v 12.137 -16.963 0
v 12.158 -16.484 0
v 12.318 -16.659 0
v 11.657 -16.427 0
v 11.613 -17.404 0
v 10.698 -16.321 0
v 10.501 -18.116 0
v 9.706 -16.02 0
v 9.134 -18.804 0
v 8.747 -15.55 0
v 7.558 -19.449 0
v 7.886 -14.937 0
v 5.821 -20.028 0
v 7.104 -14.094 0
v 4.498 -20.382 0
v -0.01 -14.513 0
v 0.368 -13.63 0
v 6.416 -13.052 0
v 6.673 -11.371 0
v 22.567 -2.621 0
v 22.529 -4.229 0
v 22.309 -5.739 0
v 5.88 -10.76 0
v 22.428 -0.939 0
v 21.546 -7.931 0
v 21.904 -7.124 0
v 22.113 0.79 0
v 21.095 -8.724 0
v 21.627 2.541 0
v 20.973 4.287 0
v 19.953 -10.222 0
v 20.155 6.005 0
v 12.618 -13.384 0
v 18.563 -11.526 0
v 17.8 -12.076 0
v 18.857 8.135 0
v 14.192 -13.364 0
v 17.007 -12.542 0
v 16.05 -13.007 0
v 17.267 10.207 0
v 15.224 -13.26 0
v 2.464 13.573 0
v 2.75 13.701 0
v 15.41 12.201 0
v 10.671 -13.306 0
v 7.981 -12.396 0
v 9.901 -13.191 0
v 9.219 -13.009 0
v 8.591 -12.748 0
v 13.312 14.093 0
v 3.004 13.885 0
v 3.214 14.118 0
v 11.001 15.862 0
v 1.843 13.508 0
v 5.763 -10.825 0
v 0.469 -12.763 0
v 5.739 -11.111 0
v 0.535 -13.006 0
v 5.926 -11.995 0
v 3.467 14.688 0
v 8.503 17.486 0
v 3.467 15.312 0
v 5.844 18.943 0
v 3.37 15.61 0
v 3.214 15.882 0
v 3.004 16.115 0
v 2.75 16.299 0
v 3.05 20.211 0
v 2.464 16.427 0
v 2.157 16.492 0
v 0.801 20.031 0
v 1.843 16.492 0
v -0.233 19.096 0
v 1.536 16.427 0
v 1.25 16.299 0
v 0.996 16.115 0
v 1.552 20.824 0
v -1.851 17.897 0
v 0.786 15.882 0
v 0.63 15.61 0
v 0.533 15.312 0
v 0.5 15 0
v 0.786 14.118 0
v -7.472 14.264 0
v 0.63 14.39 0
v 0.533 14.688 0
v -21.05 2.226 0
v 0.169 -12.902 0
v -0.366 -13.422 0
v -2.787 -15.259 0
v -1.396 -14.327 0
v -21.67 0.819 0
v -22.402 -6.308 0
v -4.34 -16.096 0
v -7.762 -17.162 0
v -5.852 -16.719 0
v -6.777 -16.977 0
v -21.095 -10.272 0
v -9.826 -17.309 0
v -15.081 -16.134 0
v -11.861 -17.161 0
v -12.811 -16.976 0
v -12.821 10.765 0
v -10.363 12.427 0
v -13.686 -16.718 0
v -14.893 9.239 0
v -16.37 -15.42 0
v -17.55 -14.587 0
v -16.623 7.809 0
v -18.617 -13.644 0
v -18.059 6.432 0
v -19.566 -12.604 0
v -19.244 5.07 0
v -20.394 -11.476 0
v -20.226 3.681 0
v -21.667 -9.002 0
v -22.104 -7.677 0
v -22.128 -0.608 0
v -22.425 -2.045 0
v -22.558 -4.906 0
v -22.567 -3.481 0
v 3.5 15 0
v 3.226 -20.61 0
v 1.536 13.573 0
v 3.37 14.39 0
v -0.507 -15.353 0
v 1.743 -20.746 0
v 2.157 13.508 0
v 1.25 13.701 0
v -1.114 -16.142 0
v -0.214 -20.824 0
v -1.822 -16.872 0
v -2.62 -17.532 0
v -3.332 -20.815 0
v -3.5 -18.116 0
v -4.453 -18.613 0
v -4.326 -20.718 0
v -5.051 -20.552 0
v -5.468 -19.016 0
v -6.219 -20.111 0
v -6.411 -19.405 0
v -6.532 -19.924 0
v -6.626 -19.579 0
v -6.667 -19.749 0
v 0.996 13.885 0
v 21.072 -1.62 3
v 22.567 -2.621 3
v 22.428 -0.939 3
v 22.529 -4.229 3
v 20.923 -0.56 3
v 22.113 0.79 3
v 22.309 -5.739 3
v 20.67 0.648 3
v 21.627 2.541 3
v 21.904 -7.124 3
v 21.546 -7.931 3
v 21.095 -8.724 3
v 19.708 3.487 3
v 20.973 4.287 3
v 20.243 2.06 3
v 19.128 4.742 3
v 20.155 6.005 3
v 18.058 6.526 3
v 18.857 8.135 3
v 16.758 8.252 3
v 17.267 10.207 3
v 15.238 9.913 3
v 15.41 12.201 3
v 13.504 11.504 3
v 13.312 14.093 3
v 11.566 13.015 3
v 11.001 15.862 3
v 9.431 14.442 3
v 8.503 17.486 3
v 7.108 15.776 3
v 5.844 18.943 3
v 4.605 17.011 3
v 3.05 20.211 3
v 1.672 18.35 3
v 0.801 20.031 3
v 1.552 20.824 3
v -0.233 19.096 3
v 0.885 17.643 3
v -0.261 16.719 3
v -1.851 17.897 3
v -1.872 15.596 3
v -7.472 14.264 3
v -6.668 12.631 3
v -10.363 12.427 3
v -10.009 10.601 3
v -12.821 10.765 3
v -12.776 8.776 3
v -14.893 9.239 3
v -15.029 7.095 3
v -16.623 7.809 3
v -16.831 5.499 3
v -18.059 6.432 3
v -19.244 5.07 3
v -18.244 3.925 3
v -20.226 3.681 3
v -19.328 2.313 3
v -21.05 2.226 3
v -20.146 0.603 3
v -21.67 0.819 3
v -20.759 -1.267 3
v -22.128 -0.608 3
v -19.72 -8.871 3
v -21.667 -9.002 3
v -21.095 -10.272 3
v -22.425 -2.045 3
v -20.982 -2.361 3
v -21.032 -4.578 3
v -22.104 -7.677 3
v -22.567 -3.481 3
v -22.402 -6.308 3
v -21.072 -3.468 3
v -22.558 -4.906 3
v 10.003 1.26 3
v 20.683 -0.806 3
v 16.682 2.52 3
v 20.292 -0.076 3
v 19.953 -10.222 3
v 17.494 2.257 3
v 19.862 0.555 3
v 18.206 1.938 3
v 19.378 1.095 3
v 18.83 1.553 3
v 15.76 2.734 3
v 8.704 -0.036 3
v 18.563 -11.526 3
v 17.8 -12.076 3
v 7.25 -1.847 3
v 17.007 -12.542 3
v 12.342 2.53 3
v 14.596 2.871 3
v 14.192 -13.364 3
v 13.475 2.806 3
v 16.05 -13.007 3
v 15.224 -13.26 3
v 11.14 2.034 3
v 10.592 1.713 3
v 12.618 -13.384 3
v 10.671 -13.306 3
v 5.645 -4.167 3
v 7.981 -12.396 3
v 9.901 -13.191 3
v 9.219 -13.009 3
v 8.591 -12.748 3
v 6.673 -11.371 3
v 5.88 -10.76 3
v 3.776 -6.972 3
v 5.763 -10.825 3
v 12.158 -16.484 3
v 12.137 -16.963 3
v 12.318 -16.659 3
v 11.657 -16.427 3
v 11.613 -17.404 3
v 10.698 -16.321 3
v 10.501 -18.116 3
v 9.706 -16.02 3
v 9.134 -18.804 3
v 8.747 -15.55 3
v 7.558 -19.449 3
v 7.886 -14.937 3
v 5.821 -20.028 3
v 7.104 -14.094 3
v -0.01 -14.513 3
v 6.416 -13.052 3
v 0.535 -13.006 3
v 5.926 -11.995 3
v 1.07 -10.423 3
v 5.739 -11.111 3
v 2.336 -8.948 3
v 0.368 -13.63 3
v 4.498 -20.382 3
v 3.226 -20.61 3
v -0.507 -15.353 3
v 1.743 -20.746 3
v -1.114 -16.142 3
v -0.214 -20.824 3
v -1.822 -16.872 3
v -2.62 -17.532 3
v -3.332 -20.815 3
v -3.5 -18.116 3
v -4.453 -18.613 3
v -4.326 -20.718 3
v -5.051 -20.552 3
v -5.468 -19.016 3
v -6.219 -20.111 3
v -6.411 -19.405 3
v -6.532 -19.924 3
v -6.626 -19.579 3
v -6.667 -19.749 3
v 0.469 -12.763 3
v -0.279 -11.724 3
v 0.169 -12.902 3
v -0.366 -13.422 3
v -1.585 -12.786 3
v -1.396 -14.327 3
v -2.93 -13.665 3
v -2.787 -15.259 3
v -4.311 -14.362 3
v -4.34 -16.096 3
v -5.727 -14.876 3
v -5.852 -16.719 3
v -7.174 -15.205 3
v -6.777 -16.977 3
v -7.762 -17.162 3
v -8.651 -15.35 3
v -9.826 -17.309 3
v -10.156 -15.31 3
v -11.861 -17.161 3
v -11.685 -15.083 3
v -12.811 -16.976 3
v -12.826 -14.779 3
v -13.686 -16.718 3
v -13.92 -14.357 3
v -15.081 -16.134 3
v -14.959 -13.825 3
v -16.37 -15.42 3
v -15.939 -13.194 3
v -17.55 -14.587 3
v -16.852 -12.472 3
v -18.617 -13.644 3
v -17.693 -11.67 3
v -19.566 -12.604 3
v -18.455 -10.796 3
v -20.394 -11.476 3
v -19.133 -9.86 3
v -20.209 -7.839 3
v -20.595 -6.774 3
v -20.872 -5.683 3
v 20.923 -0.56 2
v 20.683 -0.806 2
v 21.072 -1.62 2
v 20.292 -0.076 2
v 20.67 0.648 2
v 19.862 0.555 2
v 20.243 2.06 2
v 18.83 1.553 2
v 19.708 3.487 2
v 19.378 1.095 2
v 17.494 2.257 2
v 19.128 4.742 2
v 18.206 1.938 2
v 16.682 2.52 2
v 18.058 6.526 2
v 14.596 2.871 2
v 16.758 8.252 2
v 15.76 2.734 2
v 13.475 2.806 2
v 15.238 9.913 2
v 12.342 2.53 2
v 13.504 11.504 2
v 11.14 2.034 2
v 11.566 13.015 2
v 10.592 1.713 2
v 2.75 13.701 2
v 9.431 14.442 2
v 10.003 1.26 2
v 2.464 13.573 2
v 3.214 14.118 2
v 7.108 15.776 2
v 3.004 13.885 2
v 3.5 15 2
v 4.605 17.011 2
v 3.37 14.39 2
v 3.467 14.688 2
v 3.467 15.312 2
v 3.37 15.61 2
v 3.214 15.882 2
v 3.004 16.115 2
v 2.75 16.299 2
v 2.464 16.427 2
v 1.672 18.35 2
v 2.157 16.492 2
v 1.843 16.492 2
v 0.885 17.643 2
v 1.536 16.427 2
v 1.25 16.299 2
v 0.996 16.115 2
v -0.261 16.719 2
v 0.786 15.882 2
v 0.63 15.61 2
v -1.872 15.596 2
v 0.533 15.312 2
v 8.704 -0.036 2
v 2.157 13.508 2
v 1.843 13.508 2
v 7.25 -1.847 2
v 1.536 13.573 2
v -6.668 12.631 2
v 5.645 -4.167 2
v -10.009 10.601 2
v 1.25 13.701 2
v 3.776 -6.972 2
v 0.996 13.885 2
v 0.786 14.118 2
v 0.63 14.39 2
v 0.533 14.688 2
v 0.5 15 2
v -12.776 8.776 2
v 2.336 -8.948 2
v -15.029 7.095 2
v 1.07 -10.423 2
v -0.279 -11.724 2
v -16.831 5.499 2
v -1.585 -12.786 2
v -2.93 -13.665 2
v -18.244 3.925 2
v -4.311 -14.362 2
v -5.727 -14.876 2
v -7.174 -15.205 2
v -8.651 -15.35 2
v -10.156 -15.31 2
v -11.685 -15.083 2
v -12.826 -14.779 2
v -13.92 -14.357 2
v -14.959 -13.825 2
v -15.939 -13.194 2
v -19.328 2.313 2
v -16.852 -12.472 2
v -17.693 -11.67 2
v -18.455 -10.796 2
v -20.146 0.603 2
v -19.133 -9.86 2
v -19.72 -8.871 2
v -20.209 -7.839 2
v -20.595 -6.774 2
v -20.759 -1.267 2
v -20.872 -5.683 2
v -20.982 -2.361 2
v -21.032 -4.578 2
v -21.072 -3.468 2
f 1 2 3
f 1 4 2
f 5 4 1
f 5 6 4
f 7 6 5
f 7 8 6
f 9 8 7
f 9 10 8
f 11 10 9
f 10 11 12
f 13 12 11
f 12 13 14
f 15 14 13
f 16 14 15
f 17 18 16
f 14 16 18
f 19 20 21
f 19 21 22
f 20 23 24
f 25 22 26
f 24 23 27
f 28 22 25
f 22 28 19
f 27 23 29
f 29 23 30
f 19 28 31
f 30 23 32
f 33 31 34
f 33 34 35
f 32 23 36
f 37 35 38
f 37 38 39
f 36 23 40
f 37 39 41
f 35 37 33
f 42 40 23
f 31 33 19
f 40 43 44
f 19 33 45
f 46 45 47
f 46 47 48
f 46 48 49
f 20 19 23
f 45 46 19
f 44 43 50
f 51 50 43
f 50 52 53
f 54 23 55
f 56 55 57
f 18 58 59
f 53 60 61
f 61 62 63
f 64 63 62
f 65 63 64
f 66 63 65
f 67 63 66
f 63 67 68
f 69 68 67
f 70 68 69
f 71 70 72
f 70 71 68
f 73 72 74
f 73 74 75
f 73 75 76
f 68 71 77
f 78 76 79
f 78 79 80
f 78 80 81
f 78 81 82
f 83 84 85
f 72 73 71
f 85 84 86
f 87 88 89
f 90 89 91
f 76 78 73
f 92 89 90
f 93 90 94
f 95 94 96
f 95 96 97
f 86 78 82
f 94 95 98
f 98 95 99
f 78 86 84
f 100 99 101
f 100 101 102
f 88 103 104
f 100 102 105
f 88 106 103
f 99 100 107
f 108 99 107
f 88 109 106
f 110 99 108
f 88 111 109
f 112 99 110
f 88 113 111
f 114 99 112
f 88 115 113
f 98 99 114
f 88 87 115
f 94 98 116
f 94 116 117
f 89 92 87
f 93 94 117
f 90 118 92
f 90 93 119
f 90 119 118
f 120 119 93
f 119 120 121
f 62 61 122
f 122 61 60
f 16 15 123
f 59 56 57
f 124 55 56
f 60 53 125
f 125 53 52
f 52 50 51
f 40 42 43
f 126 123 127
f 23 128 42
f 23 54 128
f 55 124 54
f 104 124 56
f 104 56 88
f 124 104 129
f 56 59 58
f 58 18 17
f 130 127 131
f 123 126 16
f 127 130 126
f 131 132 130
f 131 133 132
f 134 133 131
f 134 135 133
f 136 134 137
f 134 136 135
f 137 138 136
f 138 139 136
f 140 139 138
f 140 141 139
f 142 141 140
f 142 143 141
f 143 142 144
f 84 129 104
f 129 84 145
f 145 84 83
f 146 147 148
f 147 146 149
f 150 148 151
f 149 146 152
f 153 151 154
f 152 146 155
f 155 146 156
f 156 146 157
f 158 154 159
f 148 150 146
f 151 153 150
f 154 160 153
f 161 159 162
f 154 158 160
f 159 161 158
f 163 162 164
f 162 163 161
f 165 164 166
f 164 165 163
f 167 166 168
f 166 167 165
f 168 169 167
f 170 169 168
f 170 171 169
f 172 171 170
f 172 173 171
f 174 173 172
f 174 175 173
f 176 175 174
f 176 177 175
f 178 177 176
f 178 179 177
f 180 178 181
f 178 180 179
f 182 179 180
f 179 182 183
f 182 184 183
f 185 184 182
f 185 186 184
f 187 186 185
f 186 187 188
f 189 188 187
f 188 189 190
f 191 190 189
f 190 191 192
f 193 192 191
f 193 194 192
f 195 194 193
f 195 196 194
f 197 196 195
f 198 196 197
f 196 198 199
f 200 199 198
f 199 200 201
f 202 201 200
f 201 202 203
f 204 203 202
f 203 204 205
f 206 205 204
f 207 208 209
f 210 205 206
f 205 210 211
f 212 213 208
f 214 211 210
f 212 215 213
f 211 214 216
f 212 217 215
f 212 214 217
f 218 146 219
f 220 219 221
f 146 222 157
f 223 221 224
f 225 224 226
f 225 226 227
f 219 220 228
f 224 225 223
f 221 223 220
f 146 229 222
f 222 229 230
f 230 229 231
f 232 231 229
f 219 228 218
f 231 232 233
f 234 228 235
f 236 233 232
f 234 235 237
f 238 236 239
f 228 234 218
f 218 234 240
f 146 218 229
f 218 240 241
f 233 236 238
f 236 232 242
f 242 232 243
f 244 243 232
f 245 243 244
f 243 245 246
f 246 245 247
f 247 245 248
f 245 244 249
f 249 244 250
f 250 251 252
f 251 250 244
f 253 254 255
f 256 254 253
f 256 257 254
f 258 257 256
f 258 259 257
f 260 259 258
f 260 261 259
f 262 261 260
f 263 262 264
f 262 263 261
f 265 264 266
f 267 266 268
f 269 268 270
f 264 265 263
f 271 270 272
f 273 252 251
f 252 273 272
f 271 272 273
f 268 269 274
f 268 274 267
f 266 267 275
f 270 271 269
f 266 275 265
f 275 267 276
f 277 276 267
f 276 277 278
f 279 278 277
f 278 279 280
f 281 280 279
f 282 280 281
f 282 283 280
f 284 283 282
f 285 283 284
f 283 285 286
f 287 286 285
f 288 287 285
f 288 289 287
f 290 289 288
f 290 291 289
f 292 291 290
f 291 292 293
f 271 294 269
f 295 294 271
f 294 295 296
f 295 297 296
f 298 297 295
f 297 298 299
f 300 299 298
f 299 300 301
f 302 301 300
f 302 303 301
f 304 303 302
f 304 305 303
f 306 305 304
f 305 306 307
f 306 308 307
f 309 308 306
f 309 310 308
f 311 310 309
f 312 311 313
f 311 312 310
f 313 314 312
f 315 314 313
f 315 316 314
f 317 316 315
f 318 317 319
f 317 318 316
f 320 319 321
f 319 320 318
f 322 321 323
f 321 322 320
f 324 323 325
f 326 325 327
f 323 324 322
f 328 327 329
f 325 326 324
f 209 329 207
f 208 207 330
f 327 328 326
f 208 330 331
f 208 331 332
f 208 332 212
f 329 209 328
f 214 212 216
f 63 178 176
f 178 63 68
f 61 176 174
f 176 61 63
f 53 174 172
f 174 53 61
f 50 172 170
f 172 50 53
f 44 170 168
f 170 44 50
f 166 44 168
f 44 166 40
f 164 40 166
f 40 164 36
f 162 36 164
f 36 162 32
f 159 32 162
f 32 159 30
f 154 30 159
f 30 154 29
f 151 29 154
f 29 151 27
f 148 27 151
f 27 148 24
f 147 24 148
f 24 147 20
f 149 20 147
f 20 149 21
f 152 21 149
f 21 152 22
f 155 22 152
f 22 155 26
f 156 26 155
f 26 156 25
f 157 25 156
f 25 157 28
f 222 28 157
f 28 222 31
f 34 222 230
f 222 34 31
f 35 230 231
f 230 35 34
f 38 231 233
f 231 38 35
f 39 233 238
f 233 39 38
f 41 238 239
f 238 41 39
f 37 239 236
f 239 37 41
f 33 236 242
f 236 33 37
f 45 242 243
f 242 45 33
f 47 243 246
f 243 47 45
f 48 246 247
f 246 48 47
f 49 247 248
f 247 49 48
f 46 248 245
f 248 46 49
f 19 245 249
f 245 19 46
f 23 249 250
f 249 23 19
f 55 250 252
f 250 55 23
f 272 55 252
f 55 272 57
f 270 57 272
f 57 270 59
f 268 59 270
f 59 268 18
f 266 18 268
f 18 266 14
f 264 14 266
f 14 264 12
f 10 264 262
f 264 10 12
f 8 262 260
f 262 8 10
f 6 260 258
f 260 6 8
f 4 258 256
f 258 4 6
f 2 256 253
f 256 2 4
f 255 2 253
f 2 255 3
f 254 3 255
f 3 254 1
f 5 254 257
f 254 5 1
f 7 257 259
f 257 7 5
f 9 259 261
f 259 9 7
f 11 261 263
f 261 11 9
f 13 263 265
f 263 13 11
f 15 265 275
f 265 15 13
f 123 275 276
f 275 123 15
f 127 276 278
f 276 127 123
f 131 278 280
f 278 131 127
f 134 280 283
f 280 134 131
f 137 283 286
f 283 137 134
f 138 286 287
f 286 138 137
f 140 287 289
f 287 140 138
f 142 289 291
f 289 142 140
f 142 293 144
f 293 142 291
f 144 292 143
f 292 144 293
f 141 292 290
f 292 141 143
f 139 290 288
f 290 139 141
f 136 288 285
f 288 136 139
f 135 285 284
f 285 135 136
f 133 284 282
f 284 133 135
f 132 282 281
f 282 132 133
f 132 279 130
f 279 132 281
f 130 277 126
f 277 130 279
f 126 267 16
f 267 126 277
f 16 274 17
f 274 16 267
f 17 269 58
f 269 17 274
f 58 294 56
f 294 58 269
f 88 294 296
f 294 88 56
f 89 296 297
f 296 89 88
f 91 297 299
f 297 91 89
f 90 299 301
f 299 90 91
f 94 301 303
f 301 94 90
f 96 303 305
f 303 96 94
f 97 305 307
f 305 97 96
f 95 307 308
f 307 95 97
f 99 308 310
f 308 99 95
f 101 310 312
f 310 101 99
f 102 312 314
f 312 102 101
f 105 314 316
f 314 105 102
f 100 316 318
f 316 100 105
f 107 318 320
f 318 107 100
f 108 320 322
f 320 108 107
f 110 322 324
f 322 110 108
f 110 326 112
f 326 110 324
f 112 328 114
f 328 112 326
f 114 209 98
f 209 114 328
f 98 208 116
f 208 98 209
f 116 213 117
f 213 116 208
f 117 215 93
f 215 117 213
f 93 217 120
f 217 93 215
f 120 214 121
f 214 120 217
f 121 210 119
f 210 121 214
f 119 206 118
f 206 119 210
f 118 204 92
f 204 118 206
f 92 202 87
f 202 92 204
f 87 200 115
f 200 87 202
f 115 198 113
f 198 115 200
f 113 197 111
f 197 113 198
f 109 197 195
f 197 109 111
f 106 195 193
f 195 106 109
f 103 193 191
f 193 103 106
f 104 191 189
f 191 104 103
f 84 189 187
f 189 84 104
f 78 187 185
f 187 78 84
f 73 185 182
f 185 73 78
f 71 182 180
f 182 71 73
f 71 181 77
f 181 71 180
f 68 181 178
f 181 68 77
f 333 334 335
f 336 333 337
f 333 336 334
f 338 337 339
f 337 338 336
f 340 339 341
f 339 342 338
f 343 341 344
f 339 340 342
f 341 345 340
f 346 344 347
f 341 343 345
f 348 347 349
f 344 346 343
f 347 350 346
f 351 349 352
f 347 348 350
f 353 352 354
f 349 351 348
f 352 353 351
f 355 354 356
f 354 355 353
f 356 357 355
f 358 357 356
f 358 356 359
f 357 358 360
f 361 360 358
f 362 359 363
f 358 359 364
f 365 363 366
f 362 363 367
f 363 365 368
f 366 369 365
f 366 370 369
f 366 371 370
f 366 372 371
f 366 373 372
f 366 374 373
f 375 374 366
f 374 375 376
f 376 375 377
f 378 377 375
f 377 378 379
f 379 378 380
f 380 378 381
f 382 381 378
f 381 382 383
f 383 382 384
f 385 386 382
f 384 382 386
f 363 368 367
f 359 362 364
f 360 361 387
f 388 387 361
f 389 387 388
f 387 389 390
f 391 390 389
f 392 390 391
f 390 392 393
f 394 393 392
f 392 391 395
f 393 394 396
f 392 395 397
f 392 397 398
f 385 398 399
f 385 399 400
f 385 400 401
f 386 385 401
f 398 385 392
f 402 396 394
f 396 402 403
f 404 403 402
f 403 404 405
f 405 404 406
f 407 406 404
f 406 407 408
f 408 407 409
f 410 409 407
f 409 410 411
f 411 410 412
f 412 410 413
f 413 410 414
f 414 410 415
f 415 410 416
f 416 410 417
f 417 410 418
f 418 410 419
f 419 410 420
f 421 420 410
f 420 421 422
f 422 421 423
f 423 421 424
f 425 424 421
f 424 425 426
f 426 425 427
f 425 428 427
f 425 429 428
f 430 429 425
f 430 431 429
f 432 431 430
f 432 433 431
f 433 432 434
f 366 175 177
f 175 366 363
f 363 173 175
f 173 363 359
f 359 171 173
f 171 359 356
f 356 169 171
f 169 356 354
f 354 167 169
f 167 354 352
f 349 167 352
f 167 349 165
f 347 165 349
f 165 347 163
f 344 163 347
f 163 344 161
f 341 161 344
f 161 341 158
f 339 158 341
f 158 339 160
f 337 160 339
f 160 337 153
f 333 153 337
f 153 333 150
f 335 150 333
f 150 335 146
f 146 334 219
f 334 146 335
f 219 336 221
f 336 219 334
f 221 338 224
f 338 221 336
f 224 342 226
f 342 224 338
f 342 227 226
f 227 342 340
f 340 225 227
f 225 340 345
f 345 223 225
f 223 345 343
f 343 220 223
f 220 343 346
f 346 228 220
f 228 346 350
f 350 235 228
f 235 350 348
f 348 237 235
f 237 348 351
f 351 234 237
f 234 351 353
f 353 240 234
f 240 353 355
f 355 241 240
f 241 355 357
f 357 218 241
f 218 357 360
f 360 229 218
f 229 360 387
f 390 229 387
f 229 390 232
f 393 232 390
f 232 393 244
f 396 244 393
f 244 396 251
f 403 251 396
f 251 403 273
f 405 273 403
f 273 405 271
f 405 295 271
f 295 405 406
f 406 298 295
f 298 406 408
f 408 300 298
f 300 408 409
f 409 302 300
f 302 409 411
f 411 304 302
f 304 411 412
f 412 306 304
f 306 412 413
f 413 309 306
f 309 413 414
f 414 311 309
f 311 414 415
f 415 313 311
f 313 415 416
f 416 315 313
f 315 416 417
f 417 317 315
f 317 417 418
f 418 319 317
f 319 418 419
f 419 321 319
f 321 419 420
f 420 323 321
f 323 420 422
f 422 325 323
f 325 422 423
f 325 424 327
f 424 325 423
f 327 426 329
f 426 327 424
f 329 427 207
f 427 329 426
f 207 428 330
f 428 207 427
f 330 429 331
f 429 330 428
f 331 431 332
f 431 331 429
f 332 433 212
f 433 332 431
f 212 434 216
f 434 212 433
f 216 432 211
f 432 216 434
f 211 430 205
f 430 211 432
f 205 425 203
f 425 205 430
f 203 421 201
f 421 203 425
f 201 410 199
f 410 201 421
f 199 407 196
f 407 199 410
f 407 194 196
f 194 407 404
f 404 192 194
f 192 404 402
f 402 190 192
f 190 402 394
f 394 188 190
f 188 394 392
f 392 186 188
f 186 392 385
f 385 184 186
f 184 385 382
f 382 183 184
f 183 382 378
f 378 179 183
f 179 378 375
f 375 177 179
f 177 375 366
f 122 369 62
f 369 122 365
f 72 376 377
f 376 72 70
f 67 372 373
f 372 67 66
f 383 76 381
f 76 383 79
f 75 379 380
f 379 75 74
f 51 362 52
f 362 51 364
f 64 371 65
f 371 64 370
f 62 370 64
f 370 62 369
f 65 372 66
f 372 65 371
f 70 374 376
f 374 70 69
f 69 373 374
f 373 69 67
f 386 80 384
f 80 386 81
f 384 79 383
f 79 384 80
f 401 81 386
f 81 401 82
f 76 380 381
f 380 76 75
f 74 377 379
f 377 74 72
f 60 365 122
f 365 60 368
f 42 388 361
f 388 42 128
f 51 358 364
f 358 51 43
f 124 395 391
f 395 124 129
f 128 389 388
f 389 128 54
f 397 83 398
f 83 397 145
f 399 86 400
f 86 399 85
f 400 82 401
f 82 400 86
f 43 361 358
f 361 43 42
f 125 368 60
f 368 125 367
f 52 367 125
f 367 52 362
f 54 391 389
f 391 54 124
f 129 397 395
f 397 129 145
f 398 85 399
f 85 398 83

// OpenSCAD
fudge = 0.1;
   
difference(){

forma2(3);

translate([0,1.5,2])
scale([1,.95,1])
forma1(2);

translate([2,15,0])cylinder(d=3,h=20,$fn=30,cneter=true);
}

module forma1(h)
{
  scale([25.4/96, -25.4/96, 1]) union()
  {
    linear_extrude(height=h)
      polygon([[-44.165123,65.974522],[-48.477815,64.765951],[-52.610347,63.085653],[-56.539347,60.971090],[-60.241442,58.459721],[-63.693259,55.589008],[-66.871425,52.396411],[-69.752567,48.919392],[-72.313313,45.195409],[-74.530289,41.261925],[-76.380123,37.156401],[-77.839441,32.916296],[-78.884871,28.579071],[-79.493040,24.182188],[-79.640574,19.763106],[-79.304102,15.359288],[-78.460250,11.008193],[-76.142231,3.568923],[-73.050565,-3.235665],[-68.952185,-9.647547],[-63.614024,-15.908699],[-56.803014,-22.261095],[-48.286090,-28.946711],[-37.830185,-36.207522],[-25.202230,-44.285503],[-7.074295,-56.080060],[-0.986564,-60.548520],[3.343678,-64.222735],[6.321261,-67.037750],[17.406178,-61.709077],[26.865738,-56.796468],[35.645279,-51.488673],[43.713577,-45.813461],[51.039408,-39.798600],[57.591546,-33.471859],[63.338768,-26.861006],[68.249848,-19.993810],[72.293563,-12.898039],[74.487252,-7.906271],[76.510262,-2.227162],[78.121502,3.389941],[79.079881,8.195693],[79.640574,12.414460],[78.170633,9.174708],[76.696154,6.270942],[75.066975,3.760868],[73.238852,1.610997],[71.167535,-0.212163],[68.808779,-1.742101],[66.118336,-3.012308],[63.051959,-4.056275],[59.565402,-4.907492],[55.166312,-5.454880],[50.930057,-5.196125],[46.645747,-4.097627],[42.102496,-2.125784],[40.031939,-0.847345],[37.805929,0.953411],[32.898393,6.108995],[27.401575,13.315210],[21.337158,22.546299],[14.269973,33.704971],[8.828040,41.568188],[4.042657,47.436568],[-1.054877,52.610727],[-5.991575,56.834795],[-11.074596,60.334583],[-16.295362,63.107431],[-21.645295,65.150681],[-27.115815,66.461674],[-32.698346,67.037750],[-38.384308,66.876253],[-44.165123,65.974522]]);
  }
}

module forma2(h)
{
  scale([25.4/90, -25.4/90, 1]) union()
  {
    linear_extrude(height=h)
      polygon([[-17.897156,72.821479],[-22.037196,71.259329],[-23.145849,70.597313],[-23.623534,69.978006],[-23.477709,69.373911],[-22.715833,68.757532],[-19.373758,67.377931],[-15.777226,65.951787],[-12.402936,64.189793],[-9.284344,62.122827],[-6.454905,59.781768],[-3.948074,57.197494],[-1.797306,54.400886],[-0.036057,51.422820],[1.302218,48.294176],[1.896717,46.082372],[1.662076,45.222421],[0.597504,45.714105],[-1.297790,47.557204],[-4.945618,50.764762],[-9.876814,54.066936],[-15.377992,57.034966],[-20.735770,59.240089],[-24.012221,60.155199],[-27.504716,60.808661],[-34.816287,61.330764],[-42.027379,60.806644],[-45.394275,60.152327],[-48.494887,59.236546],[-53.435306,57.169146],[-58.003827,54.639476],[-62.185578,51.685797],[-65.965688,48.346372],[-69.329283,44.659462],[-72.261492,40.663329],[-74.747443,36.396237],[-76.772262,31.896447],[-78.321078,27.202220],[-79.379018,22.351821],[-79.931211,17.383509],[-79.962783,12.335549],[-79.458863,7.246201],[-78.404579,2.153729],[-76.785057,-2.903607],[-74.585426,-7.887543],[-71.667653,-13.044560],[-68.188901,-17.964698],[-63.987407,-22.791383],[-58.901407,-27.668041],[-52.769139,-32.738099],[-45.428840,-38.144984],[-36.718747,-44.032120],[-26.477096,-50.542936],[-6.560292,-63.413312],[-0.824234,-67.663847],[2.838525,-70.974813],[5.497600,-73.784160],[10.807281,-71.612857],[20.706778,-67.119389],[30.129340,-61.956776],[38.981499,-56.202646],[47.169787,-49.934625],[54.600736,-43.230341],[61.180878,-36.167420],[66.816747,-28.823489],[71.414874,-21.276177],[74.314462,-15.191758],[76.631175,-9.002263],[78.352885,-2.798730],[79.467464,3.327803],[79.962783,9.286297],[79.826716,14.985713],[79.047132,20.335012],[77.611905,25.243157],[76.344598,28.102450],[74.745495,30.912600],[70.700397,36.221163],[65.773593,40.840231],[63.072359,42.788510],[60.262067,44.441184],[56.871058,46.089290],[53.942681,46.983644],[50.286147,47.352714],[44.710670,47.424967],[37.809425,47.148975],[35.080951,46.740276],[32.666672,46.094478],[30.441163,45.169107],[28.278996,43.921693],[23.642981,40.290838],[20.835672,38.125638],[20.419833,38.355508],[20.335694,39.369294],[20.997171,42.500521],[22.733649,46.245347],[25.173196,49.941090],[27.943883,52.925066],[30.993750,55.097250],[34.392529,56.762968],[37.906967,57.830015],[41.303815,58.206188],[43.079809,58.406008],[43.647044,59.027575],[43.004043,60.104042],[41.149327,61.668565],[37.209530,64.190244],[32.364920,66.630258],[26.781185,68.913561],[20.624013,70.965105],[15.938481,72.220530],[11.431771,73.027269],[6.175678,73.507690],[-0.758003,73.784160],[-11.806388,73.755122],[-15.329571,73.409714],[-17.897085,72.822648]]);
  }
}
